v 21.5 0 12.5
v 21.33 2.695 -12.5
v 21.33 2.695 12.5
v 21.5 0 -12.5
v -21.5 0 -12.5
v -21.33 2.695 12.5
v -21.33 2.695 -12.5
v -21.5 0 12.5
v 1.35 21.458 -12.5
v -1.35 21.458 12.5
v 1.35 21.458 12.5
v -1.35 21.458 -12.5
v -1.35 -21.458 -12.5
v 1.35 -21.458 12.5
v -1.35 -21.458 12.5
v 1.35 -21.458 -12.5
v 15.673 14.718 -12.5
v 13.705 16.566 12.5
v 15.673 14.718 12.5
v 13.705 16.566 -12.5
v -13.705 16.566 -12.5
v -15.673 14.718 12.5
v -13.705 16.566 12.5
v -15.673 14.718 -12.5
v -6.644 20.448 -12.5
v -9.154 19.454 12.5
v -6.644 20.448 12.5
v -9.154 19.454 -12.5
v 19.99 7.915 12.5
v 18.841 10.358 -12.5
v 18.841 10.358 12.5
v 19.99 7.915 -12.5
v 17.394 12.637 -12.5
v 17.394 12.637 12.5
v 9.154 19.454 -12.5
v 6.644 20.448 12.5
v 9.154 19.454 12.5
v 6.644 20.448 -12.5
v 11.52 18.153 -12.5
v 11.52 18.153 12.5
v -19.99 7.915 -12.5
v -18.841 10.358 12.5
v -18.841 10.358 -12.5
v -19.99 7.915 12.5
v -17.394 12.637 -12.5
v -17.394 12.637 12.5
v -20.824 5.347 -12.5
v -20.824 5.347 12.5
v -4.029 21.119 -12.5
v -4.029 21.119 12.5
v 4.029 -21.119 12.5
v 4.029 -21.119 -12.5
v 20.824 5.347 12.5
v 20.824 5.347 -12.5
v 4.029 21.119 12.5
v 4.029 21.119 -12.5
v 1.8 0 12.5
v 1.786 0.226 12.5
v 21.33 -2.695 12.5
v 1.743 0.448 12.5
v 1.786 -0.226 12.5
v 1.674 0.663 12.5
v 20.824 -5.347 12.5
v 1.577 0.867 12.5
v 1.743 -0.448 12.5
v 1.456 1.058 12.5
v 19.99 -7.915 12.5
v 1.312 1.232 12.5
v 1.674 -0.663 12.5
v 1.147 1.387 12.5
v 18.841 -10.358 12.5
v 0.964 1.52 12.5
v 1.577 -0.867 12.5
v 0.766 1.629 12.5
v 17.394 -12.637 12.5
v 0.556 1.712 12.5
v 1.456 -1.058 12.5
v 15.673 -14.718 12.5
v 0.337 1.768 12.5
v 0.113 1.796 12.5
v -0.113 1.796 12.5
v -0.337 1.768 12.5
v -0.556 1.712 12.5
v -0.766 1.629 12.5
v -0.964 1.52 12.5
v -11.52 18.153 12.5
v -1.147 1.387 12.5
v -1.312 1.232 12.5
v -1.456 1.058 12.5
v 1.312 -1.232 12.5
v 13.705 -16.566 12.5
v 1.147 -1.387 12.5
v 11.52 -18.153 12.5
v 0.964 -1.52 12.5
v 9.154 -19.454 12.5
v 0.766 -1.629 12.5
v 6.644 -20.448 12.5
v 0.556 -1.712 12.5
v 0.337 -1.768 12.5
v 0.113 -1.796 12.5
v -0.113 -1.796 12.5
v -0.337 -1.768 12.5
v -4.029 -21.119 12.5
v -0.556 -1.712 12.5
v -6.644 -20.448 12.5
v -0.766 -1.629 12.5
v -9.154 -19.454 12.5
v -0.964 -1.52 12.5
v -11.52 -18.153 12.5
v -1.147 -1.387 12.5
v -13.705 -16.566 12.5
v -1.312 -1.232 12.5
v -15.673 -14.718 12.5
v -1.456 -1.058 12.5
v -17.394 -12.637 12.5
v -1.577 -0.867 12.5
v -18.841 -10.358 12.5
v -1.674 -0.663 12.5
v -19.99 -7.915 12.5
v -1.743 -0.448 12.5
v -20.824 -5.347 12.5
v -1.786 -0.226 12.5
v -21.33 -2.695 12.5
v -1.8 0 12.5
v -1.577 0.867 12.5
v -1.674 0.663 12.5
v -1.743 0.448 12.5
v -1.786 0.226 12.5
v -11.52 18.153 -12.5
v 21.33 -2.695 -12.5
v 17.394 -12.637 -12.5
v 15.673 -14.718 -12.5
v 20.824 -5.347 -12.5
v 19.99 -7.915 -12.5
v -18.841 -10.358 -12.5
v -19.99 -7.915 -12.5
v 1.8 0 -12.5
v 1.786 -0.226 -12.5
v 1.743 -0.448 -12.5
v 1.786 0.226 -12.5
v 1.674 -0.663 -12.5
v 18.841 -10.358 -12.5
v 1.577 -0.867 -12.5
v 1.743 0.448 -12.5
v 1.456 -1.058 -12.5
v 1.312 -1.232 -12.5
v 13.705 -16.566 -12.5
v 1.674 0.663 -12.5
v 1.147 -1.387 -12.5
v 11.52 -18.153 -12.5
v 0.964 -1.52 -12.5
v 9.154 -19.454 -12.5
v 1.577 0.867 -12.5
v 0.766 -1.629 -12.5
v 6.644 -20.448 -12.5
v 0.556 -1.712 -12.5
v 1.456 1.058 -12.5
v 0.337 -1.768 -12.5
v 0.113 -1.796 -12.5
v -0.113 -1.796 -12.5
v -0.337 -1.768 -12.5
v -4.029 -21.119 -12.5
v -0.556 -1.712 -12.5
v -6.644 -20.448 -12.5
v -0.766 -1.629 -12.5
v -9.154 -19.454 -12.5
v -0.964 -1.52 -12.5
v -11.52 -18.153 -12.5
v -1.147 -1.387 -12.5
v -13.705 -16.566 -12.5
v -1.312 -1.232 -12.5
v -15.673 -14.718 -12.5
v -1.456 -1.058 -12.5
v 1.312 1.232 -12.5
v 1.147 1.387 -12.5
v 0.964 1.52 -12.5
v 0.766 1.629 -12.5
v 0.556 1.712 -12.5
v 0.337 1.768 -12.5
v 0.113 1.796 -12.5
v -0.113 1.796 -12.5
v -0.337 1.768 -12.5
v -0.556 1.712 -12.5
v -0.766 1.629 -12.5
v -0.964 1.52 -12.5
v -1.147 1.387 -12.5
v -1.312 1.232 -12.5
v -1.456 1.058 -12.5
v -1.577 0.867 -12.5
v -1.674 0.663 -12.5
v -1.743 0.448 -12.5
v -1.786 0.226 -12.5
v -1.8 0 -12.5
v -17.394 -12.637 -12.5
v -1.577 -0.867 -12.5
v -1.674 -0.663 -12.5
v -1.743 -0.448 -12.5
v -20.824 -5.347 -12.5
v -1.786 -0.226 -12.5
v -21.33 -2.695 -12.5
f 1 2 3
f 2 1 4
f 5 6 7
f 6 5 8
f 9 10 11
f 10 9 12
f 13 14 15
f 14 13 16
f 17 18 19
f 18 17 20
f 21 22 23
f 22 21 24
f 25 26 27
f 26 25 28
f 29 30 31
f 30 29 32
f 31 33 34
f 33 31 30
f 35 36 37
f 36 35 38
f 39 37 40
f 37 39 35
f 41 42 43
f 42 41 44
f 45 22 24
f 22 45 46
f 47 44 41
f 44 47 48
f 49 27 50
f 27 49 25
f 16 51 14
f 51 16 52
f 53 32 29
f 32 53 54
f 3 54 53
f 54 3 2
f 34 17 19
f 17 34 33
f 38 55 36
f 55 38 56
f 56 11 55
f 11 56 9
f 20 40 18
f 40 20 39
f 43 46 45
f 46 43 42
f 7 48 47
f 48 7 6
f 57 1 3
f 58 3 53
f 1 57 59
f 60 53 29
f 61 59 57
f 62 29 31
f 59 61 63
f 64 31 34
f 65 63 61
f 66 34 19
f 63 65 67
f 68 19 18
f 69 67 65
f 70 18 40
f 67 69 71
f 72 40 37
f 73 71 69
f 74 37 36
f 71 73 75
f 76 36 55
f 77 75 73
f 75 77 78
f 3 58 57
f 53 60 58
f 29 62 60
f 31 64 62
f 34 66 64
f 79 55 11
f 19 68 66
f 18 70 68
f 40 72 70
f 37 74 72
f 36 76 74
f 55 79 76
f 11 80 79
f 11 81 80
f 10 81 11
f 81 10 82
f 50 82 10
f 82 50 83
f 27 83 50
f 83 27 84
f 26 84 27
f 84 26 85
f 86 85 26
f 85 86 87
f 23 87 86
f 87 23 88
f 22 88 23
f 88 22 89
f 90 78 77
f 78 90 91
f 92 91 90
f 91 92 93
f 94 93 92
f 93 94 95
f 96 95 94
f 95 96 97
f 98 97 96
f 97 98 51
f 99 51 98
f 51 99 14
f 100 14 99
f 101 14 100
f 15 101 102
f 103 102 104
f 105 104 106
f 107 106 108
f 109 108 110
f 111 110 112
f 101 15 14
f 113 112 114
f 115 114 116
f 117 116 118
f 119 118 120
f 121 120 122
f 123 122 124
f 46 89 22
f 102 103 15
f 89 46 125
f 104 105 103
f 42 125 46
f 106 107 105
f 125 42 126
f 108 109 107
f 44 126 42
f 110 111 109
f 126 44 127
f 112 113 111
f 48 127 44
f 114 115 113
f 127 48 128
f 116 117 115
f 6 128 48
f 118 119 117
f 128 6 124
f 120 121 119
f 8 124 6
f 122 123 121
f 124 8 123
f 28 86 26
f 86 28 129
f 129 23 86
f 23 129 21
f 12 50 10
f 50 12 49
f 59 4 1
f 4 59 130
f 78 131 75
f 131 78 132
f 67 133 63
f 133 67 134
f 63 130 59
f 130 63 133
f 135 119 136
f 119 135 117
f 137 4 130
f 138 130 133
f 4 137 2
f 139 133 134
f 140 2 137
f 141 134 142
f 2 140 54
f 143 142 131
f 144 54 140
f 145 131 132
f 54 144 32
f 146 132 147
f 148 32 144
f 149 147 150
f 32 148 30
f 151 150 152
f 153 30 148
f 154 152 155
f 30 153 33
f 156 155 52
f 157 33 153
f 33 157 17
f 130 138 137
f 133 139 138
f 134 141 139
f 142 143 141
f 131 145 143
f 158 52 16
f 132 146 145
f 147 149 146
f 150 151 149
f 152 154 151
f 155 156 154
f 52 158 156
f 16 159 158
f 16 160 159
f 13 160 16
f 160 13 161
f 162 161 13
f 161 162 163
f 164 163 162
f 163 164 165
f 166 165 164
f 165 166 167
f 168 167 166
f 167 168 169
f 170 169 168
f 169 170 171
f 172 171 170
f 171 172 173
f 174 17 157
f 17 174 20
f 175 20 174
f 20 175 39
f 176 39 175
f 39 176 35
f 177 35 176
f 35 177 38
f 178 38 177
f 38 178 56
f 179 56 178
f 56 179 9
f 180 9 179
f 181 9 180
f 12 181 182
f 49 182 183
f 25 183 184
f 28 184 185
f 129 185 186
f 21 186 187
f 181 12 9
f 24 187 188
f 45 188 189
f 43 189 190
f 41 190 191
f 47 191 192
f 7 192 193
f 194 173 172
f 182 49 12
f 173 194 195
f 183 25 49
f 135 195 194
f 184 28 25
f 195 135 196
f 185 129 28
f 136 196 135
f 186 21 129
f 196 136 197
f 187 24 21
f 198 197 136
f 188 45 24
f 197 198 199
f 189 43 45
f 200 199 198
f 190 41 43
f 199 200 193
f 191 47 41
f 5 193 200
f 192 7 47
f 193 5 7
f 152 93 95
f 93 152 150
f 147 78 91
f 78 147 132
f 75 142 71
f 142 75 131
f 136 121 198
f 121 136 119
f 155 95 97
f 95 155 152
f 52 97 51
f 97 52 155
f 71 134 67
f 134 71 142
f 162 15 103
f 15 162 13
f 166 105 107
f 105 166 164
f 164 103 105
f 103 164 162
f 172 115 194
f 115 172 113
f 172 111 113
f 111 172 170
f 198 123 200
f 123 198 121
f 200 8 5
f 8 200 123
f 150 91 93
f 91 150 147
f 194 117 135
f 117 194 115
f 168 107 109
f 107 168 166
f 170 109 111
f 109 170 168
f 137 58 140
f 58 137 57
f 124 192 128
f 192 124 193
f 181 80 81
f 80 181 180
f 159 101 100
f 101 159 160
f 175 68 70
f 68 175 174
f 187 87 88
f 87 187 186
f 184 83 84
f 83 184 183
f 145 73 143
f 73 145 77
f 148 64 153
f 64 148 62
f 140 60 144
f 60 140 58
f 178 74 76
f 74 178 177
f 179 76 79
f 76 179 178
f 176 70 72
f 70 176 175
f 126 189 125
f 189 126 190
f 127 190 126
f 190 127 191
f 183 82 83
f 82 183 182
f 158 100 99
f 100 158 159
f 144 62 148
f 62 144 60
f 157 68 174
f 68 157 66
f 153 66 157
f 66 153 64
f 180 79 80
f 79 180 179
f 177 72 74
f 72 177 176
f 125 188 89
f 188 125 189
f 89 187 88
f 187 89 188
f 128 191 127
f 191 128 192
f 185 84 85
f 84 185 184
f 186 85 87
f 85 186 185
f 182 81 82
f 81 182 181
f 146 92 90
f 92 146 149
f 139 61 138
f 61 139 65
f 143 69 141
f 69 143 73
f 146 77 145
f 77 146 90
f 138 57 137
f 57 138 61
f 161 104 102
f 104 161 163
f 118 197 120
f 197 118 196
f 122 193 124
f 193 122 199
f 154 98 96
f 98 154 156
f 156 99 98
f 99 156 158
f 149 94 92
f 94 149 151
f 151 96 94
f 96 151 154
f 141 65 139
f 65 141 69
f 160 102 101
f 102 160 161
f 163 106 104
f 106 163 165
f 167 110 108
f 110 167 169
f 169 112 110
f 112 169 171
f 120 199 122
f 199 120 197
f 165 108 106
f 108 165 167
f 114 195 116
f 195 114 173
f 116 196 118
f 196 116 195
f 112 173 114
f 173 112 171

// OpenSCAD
$fn = 50;


difference() {
	union() {
		translate(v = [0, 0, -12.5000000000]) {
			cylinder(h = 25, r = 21.5000000000);
		}
	}
	union() {
		translate(v = [0, 0, -100.0000000000]) {
			cylinder(h = 200, r = 1.8000000000);
		}
	}
}
